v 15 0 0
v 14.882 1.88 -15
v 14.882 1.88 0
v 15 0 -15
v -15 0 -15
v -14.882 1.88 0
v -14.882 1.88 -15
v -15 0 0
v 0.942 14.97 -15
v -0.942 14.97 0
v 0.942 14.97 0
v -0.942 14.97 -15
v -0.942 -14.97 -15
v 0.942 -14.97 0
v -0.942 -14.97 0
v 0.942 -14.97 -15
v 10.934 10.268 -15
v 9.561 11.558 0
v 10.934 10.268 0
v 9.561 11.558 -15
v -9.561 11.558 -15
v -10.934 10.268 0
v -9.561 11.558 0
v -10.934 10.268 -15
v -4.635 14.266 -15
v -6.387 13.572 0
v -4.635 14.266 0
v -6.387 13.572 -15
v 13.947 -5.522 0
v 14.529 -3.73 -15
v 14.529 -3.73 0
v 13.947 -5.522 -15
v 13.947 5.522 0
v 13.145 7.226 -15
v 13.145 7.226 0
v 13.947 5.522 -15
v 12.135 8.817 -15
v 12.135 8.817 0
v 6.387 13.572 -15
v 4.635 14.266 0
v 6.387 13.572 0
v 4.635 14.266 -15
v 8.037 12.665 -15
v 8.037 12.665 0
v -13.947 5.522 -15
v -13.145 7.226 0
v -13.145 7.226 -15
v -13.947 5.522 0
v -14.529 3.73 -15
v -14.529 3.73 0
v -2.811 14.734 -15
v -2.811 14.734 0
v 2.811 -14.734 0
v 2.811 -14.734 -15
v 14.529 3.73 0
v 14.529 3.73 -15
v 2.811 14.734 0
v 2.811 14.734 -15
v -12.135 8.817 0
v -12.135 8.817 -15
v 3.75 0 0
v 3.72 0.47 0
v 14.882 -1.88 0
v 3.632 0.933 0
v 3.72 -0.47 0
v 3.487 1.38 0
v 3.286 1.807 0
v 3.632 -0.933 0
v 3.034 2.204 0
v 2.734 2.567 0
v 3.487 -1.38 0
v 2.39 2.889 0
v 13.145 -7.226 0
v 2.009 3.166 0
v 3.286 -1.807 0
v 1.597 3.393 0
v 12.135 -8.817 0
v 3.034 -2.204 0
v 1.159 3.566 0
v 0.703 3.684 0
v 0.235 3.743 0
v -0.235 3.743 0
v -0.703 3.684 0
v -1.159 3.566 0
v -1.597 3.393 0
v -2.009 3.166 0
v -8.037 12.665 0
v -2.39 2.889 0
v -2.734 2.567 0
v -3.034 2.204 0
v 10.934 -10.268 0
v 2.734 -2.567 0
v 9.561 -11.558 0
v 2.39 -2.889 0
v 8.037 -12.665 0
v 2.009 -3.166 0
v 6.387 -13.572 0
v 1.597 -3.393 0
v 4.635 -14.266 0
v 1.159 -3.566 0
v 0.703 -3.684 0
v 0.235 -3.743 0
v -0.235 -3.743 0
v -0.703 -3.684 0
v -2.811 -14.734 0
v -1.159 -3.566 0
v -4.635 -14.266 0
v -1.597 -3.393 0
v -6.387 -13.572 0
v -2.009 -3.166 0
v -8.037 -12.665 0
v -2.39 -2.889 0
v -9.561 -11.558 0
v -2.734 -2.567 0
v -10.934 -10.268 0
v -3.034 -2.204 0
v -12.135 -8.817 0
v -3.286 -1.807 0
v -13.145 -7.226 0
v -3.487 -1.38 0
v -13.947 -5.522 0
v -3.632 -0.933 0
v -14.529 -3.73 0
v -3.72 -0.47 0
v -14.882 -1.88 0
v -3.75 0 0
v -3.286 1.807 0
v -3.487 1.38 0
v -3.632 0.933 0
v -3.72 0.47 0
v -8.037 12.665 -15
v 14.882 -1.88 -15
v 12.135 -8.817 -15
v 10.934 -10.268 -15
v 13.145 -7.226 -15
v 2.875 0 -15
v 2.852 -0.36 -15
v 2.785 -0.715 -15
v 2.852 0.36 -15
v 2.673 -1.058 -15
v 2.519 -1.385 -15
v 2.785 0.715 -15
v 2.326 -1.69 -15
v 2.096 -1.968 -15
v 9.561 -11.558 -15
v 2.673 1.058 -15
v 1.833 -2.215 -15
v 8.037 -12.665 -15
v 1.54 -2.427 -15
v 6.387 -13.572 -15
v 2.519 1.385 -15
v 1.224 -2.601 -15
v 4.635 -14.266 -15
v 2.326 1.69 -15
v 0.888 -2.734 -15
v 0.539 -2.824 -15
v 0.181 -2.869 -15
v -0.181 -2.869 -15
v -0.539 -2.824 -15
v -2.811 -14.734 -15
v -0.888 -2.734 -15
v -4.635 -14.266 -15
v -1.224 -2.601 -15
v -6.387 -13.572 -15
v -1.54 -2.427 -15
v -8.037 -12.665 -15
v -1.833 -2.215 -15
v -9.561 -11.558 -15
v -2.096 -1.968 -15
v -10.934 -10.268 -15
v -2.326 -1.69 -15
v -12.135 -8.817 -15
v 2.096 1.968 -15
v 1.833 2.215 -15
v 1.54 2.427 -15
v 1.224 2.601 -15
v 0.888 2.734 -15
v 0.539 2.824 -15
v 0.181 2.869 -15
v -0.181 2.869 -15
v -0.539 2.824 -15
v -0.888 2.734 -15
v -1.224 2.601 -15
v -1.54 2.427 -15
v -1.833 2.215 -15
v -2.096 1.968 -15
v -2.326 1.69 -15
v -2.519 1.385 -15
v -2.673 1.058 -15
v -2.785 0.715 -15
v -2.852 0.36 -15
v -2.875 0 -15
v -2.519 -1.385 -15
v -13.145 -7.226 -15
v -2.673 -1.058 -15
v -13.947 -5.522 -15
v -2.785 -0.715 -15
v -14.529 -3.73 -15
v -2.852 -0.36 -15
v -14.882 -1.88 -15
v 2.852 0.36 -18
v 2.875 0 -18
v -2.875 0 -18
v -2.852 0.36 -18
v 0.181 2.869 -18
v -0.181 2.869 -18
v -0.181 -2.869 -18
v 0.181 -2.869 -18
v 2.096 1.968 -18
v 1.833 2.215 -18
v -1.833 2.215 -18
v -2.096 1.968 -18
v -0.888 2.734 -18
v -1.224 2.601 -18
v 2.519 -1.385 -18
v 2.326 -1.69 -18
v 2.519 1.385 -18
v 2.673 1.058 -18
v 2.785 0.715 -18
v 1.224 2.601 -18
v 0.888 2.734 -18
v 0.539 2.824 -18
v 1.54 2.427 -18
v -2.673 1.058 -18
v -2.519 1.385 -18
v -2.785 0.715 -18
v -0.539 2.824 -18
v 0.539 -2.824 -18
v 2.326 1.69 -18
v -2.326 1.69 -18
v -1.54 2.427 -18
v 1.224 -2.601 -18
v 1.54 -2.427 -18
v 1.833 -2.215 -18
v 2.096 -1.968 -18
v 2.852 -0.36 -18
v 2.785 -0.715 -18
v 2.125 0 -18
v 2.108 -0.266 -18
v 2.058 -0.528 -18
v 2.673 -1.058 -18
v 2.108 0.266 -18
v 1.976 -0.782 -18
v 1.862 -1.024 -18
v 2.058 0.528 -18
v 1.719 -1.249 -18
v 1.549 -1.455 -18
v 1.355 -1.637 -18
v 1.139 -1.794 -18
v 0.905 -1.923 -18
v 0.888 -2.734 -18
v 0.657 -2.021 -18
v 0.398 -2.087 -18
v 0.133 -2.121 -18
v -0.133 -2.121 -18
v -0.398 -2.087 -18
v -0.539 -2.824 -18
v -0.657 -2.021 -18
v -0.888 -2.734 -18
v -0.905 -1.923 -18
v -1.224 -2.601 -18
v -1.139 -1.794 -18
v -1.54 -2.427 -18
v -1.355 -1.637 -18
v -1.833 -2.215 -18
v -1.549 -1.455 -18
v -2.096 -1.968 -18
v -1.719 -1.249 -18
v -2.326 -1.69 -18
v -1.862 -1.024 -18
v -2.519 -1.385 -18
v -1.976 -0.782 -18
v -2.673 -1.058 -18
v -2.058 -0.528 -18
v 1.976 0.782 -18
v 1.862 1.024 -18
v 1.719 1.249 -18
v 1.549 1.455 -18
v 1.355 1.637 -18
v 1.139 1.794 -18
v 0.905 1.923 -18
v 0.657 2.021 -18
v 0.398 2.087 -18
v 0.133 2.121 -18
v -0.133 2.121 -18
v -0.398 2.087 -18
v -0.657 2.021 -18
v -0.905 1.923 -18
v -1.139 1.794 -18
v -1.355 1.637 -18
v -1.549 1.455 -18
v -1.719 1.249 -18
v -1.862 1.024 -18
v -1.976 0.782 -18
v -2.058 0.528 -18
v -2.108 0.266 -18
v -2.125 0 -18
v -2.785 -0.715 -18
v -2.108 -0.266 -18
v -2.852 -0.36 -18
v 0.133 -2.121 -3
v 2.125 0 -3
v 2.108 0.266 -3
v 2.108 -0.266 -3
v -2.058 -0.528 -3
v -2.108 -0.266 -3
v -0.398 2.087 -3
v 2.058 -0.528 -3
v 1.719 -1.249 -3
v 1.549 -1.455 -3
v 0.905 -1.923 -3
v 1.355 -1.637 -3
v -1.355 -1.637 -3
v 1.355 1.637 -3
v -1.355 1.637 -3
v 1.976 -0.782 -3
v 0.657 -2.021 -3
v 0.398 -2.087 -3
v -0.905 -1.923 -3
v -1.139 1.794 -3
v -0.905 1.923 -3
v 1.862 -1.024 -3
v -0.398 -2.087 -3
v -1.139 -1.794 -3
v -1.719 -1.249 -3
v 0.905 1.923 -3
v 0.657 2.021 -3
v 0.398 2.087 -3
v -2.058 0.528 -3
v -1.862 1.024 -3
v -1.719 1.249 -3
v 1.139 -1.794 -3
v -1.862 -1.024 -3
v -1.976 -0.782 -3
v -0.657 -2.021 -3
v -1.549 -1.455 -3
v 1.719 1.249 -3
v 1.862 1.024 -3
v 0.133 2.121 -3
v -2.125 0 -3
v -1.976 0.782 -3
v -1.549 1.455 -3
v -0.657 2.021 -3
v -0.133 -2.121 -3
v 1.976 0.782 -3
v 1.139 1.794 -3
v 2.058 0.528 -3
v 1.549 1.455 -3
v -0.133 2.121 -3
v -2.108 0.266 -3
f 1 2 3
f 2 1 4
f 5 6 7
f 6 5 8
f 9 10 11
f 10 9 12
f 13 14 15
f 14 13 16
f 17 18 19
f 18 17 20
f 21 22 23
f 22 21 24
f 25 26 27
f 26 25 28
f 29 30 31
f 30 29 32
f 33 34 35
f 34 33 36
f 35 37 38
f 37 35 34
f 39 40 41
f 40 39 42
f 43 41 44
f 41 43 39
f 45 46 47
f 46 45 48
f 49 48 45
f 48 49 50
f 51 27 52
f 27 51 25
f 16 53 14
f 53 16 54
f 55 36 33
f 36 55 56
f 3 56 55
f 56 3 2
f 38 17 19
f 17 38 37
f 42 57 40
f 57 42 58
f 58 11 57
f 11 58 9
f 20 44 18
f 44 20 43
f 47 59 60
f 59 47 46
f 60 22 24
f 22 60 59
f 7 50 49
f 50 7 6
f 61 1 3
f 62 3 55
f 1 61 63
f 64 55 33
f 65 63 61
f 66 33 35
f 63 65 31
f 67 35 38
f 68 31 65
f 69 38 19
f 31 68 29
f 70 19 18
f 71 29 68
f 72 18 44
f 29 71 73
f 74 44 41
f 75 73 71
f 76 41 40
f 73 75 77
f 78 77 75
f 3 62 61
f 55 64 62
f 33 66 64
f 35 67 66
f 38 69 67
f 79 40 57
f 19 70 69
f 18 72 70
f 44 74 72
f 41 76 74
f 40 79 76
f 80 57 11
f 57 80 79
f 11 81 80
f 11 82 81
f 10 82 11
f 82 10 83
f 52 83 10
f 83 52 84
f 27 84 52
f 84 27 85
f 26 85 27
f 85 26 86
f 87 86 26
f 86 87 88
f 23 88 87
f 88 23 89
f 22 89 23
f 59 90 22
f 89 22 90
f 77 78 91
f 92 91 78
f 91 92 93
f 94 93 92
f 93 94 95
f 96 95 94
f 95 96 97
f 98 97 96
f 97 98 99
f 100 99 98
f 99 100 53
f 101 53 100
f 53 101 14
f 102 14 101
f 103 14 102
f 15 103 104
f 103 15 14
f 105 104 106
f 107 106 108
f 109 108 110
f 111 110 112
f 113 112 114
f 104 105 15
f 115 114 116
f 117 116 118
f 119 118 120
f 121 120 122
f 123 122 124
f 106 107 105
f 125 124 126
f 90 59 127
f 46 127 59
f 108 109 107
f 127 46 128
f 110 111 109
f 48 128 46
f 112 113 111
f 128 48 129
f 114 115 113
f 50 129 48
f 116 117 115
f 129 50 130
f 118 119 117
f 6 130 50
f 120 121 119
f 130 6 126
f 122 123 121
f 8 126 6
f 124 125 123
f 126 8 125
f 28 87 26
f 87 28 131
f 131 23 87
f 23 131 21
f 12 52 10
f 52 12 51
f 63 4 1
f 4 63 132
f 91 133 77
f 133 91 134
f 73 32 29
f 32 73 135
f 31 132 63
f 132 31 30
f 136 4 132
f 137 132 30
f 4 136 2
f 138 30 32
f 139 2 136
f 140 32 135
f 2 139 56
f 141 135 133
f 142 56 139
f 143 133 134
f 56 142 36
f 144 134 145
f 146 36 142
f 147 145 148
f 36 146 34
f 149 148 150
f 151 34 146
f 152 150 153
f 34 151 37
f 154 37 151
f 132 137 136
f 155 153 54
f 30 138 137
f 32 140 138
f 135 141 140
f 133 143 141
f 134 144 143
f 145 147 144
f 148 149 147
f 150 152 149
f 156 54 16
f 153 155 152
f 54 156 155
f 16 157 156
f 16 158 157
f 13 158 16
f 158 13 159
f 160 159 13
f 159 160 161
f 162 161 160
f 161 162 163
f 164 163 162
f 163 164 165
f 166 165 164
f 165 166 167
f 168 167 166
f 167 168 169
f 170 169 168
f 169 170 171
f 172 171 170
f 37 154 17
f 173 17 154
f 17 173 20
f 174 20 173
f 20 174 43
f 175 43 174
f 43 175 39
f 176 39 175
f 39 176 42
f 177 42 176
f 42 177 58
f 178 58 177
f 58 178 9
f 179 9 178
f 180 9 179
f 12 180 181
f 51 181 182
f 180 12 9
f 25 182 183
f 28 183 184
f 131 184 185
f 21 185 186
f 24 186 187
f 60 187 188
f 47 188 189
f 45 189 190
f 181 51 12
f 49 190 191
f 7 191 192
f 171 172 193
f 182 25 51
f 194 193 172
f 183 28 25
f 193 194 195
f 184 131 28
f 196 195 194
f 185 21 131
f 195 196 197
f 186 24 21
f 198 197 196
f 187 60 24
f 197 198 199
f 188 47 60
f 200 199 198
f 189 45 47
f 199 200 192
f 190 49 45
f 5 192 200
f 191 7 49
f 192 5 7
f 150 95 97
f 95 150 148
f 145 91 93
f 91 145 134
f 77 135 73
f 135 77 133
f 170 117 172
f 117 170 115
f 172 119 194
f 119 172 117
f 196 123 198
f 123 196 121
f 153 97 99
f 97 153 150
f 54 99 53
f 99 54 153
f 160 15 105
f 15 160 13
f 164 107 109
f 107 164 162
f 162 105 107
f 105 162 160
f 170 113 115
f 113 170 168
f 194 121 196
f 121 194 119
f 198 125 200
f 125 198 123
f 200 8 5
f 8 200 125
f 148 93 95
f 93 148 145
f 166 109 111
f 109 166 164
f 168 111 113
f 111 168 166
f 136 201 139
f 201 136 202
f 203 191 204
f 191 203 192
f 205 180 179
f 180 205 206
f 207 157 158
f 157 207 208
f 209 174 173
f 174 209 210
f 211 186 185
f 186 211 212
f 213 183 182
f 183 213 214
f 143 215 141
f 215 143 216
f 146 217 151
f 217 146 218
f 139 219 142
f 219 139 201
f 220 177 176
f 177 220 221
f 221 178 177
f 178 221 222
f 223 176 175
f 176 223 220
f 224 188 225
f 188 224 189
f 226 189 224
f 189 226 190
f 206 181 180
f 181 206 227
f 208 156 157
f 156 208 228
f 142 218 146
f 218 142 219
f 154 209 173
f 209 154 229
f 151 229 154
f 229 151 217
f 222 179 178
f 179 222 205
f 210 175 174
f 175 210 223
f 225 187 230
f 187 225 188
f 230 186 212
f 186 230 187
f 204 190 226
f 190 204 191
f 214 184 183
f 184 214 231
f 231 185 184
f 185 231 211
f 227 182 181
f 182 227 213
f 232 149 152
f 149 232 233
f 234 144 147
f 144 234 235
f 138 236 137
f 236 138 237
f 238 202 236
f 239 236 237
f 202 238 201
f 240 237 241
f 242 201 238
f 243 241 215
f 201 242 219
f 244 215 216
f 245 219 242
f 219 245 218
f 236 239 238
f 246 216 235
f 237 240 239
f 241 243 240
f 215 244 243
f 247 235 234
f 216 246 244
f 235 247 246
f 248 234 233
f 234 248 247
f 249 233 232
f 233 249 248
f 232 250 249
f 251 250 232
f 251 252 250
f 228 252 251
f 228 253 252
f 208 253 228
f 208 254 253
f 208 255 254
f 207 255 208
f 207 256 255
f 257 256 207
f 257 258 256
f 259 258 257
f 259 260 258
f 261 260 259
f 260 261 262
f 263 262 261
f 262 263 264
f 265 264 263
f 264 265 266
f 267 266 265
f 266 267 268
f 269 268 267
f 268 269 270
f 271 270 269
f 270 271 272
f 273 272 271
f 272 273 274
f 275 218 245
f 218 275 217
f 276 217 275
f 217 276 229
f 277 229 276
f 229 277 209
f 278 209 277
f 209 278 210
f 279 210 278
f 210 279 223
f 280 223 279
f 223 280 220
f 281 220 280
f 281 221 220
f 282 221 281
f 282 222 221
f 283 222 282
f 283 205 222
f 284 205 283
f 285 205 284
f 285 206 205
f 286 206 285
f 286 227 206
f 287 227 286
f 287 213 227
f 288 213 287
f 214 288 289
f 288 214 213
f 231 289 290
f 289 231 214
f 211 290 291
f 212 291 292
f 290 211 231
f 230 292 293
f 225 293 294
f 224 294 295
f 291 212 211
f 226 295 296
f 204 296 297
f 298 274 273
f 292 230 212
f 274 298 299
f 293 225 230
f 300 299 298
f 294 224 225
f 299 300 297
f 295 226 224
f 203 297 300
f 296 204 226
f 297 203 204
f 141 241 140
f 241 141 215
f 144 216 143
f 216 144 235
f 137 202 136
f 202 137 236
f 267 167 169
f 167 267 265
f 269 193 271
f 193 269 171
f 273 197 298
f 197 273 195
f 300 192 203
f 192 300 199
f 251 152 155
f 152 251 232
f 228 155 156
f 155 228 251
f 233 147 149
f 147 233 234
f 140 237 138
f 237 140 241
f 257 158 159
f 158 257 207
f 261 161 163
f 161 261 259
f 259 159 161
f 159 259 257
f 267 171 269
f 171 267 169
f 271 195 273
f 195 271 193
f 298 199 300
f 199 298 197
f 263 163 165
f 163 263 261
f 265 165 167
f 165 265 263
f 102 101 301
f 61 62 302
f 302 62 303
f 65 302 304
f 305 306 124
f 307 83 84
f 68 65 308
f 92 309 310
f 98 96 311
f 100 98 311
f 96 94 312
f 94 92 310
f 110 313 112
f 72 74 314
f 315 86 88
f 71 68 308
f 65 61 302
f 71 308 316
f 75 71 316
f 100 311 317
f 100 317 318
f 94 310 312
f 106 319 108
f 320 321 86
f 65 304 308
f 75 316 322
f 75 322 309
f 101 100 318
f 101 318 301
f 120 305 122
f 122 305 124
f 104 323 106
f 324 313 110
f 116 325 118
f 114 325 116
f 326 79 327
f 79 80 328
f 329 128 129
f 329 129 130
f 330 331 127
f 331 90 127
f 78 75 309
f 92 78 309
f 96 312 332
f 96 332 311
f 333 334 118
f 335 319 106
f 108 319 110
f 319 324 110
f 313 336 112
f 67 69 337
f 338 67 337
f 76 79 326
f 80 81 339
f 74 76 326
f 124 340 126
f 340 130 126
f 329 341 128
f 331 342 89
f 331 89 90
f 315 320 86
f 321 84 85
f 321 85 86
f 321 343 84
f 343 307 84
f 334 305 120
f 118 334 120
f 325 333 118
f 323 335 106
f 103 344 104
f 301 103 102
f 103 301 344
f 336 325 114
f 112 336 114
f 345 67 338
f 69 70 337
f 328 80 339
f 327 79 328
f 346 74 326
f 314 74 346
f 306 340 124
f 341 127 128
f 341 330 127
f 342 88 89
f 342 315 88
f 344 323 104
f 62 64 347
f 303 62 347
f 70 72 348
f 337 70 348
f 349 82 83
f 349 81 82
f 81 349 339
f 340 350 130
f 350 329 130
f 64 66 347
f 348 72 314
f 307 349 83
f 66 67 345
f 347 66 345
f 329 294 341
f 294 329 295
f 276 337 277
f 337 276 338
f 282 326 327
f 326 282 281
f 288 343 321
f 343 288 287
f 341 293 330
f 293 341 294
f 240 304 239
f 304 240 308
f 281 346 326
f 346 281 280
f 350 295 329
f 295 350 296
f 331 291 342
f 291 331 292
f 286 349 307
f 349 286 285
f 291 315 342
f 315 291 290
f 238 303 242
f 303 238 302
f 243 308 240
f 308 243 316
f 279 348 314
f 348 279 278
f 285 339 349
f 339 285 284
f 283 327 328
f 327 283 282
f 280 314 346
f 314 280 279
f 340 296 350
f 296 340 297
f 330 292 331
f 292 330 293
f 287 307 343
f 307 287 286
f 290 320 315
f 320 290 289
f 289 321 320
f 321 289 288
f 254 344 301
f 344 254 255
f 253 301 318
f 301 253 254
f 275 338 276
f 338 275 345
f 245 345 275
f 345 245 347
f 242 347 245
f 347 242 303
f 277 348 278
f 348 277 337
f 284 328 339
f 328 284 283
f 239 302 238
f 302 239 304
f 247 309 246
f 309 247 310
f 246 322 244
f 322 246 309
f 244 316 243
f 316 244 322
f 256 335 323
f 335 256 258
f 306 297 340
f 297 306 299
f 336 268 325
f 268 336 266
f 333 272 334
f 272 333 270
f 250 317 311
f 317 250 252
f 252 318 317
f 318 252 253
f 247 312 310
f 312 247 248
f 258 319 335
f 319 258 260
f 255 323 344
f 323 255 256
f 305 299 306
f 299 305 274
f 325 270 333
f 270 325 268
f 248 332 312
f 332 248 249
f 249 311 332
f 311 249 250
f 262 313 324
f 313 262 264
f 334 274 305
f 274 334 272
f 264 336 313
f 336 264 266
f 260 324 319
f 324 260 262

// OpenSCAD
$fn = 50;

difference() {
	union() {
		translate(v = [0, 0, -15.0]) {
			cylinder(h = 15, r = 15.0);
		}
		#translate(v = [0, 0, -18.0]) {
			cylinder(h = 18, r = 2.875);
		}
	}
	union() {
		translate(v = [0, 0, 0]) {
			rotate(a = [0, 0, 0]) {
				difference() {
					union() {
						translate(v = [0, 0, -18.0]) {
							cylinder(h = 18, r = 2.0);
						}
						translate(v = [0, 0, -3]) {
							cylinder(h = 3, r1 = 2.125, r2 = 3.75);
						}
						translate(v = [0, 0, -18.0]) {
							cylinder(h = 18, r = 2.125);
						}
						translate(v = [0, 0, -18.0]) {
							cylinder(h = 18, r = 2.0);
						}
					}
					union();
				}
			}
		}
	}
}
